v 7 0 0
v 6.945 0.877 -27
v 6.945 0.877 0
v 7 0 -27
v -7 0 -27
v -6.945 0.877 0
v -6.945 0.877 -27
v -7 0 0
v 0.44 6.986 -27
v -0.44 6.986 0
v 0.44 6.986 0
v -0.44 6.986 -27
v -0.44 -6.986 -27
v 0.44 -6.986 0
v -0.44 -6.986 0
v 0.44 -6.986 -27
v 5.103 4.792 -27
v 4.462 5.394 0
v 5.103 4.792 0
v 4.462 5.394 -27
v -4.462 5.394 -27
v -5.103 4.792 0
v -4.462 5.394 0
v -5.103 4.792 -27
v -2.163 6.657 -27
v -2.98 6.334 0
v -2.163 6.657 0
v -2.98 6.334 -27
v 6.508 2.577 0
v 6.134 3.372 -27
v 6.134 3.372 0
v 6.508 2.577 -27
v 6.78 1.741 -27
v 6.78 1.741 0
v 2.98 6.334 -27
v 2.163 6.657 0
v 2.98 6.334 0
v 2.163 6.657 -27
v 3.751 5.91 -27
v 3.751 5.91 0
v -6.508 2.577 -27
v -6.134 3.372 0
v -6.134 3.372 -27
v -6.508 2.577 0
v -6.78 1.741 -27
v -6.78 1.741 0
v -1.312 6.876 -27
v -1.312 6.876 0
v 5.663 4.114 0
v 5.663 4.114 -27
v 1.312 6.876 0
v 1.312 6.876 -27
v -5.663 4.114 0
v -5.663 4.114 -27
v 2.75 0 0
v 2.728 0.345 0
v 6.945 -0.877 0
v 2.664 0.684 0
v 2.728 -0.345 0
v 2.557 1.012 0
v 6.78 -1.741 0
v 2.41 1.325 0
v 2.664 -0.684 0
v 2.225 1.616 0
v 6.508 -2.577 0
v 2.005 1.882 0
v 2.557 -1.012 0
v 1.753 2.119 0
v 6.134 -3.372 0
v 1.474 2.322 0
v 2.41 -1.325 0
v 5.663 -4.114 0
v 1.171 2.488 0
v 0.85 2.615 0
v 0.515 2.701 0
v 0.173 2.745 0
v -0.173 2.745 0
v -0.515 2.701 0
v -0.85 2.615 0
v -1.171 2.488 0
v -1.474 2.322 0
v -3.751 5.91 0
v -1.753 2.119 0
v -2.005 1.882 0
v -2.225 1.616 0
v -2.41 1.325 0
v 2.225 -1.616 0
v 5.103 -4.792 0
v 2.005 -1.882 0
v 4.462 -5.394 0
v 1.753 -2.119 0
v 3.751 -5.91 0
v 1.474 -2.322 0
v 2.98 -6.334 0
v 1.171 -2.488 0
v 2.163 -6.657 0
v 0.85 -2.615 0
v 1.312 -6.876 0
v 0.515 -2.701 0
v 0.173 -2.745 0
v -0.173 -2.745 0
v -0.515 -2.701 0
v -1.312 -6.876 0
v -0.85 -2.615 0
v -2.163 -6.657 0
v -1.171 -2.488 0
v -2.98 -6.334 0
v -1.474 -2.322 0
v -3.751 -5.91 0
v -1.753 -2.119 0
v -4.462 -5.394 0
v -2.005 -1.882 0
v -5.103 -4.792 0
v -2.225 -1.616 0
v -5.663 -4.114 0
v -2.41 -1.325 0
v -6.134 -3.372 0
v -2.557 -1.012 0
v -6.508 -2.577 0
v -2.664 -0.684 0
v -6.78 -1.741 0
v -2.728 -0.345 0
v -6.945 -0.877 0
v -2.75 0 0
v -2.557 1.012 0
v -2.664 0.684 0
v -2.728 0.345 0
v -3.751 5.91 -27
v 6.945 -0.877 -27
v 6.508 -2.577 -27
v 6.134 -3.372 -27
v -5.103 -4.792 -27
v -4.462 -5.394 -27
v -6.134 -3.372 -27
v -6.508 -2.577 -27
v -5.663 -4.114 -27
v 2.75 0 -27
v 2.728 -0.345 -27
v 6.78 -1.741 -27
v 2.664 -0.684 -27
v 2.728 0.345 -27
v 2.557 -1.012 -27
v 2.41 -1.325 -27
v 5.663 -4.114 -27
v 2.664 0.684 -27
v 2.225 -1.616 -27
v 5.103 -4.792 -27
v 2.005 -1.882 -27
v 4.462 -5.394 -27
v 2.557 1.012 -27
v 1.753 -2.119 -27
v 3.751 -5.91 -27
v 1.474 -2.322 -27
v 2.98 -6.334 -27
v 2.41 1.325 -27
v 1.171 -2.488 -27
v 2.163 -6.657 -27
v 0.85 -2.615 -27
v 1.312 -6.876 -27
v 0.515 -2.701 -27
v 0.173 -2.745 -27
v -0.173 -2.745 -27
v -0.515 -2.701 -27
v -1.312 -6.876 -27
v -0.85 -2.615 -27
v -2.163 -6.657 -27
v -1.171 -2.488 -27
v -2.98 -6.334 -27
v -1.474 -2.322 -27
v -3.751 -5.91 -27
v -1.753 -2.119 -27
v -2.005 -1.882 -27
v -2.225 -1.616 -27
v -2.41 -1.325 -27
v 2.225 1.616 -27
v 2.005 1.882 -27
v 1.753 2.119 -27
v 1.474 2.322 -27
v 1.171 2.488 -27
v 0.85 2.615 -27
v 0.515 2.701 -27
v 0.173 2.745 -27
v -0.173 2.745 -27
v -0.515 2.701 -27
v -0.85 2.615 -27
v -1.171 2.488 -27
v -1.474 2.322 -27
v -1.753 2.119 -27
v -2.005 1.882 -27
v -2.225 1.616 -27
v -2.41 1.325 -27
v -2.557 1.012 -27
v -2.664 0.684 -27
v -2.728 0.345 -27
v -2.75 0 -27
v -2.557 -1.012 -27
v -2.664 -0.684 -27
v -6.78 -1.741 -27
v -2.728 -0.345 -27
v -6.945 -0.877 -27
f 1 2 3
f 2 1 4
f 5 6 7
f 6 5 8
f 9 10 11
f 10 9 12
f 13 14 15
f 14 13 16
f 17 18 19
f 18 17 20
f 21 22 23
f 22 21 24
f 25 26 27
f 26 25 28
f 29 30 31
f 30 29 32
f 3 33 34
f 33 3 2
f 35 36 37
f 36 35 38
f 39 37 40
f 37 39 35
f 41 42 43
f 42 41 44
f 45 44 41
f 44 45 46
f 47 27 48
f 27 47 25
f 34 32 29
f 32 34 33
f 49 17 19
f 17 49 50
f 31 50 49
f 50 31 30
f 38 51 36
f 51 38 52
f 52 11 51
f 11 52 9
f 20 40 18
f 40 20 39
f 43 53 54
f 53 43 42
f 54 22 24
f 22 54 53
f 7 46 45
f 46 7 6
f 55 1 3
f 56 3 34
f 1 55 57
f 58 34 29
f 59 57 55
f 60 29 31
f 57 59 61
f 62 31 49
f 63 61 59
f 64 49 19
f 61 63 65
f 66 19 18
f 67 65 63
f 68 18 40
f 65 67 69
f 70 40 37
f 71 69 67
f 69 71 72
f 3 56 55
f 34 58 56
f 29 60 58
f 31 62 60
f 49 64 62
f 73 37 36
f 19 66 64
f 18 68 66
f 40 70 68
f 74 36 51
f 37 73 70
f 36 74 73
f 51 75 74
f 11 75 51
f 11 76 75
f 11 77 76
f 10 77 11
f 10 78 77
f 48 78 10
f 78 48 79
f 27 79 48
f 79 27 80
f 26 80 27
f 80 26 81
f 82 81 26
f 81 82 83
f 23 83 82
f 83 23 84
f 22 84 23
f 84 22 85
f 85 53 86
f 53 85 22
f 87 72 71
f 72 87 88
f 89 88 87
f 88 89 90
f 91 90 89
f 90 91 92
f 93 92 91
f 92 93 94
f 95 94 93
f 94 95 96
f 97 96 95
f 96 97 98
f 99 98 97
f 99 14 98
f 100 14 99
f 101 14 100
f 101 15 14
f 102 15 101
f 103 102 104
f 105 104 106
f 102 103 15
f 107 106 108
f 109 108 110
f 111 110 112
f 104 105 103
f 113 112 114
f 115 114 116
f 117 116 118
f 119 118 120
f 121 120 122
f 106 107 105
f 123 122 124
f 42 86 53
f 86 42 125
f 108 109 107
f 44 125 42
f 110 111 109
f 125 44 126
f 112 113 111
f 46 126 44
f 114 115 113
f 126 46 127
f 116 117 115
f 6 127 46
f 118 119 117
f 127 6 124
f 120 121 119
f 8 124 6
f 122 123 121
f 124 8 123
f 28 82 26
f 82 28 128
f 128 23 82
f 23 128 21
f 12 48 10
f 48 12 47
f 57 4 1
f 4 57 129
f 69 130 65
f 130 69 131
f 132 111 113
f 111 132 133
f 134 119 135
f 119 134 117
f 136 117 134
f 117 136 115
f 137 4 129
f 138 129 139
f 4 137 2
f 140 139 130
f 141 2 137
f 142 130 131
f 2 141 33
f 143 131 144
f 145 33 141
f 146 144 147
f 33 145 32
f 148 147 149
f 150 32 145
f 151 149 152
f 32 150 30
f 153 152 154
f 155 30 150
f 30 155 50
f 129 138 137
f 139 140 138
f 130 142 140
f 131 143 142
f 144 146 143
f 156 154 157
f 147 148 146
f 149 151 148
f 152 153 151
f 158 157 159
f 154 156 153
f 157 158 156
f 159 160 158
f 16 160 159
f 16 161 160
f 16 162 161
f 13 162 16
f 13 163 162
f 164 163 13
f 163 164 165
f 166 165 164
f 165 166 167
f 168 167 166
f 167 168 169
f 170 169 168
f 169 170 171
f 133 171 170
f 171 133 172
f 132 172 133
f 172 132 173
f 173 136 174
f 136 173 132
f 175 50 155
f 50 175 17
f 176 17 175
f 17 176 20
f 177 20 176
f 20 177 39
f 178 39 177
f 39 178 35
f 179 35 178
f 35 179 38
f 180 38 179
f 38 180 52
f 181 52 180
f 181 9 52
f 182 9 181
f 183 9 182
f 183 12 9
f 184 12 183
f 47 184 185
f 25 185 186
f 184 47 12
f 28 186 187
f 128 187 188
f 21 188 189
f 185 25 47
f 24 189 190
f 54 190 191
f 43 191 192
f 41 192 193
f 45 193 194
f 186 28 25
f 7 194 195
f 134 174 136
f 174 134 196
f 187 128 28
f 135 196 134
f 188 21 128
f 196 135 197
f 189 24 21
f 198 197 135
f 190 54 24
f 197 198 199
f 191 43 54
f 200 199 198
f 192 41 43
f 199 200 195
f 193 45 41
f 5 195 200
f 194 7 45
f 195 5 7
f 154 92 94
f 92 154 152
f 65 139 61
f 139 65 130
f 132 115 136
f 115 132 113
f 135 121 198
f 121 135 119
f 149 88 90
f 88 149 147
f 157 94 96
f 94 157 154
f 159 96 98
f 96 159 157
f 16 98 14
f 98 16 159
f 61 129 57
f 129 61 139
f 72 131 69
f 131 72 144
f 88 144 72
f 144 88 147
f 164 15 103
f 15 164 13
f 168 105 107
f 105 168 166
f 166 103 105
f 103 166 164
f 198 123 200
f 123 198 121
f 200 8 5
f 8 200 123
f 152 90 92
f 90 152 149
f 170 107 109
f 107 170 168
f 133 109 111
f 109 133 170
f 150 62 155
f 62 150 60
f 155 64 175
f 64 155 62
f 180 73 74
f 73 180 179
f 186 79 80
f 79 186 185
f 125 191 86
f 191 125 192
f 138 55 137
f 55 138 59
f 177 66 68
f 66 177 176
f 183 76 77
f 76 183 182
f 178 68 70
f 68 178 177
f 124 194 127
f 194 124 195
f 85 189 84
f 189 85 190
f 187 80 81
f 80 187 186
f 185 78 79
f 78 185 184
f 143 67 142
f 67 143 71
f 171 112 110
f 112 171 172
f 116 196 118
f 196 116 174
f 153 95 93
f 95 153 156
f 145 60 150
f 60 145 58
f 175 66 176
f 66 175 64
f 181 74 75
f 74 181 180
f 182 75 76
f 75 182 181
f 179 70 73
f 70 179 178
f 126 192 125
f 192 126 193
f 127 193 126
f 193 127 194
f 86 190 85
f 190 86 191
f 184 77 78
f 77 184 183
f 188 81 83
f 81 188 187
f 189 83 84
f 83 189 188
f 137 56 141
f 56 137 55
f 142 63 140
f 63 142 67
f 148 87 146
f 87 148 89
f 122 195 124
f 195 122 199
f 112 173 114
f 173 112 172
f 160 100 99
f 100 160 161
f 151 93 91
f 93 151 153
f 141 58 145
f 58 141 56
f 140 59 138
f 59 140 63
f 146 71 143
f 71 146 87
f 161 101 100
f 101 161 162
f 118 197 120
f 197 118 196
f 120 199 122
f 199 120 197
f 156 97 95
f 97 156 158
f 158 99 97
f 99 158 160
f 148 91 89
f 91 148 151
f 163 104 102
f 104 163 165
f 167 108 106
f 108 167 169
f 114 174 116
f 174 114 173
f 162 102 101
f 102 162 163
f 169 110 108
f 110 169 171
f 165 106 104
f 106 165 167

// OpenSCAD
$fn = 50;


difference() {
	union() {
		translate(v = [0, 0, -27.0000000000]) {
			cylinder(h = 27, r = 7.0000000000);
		}
		cylinder(h = 0, r = 17.0000000000);
	}
	union() {
		#translate(v = [0, 0, -27]) {
			cylinder(h = 27, r = 2.7500000000);
		}
	}
}
